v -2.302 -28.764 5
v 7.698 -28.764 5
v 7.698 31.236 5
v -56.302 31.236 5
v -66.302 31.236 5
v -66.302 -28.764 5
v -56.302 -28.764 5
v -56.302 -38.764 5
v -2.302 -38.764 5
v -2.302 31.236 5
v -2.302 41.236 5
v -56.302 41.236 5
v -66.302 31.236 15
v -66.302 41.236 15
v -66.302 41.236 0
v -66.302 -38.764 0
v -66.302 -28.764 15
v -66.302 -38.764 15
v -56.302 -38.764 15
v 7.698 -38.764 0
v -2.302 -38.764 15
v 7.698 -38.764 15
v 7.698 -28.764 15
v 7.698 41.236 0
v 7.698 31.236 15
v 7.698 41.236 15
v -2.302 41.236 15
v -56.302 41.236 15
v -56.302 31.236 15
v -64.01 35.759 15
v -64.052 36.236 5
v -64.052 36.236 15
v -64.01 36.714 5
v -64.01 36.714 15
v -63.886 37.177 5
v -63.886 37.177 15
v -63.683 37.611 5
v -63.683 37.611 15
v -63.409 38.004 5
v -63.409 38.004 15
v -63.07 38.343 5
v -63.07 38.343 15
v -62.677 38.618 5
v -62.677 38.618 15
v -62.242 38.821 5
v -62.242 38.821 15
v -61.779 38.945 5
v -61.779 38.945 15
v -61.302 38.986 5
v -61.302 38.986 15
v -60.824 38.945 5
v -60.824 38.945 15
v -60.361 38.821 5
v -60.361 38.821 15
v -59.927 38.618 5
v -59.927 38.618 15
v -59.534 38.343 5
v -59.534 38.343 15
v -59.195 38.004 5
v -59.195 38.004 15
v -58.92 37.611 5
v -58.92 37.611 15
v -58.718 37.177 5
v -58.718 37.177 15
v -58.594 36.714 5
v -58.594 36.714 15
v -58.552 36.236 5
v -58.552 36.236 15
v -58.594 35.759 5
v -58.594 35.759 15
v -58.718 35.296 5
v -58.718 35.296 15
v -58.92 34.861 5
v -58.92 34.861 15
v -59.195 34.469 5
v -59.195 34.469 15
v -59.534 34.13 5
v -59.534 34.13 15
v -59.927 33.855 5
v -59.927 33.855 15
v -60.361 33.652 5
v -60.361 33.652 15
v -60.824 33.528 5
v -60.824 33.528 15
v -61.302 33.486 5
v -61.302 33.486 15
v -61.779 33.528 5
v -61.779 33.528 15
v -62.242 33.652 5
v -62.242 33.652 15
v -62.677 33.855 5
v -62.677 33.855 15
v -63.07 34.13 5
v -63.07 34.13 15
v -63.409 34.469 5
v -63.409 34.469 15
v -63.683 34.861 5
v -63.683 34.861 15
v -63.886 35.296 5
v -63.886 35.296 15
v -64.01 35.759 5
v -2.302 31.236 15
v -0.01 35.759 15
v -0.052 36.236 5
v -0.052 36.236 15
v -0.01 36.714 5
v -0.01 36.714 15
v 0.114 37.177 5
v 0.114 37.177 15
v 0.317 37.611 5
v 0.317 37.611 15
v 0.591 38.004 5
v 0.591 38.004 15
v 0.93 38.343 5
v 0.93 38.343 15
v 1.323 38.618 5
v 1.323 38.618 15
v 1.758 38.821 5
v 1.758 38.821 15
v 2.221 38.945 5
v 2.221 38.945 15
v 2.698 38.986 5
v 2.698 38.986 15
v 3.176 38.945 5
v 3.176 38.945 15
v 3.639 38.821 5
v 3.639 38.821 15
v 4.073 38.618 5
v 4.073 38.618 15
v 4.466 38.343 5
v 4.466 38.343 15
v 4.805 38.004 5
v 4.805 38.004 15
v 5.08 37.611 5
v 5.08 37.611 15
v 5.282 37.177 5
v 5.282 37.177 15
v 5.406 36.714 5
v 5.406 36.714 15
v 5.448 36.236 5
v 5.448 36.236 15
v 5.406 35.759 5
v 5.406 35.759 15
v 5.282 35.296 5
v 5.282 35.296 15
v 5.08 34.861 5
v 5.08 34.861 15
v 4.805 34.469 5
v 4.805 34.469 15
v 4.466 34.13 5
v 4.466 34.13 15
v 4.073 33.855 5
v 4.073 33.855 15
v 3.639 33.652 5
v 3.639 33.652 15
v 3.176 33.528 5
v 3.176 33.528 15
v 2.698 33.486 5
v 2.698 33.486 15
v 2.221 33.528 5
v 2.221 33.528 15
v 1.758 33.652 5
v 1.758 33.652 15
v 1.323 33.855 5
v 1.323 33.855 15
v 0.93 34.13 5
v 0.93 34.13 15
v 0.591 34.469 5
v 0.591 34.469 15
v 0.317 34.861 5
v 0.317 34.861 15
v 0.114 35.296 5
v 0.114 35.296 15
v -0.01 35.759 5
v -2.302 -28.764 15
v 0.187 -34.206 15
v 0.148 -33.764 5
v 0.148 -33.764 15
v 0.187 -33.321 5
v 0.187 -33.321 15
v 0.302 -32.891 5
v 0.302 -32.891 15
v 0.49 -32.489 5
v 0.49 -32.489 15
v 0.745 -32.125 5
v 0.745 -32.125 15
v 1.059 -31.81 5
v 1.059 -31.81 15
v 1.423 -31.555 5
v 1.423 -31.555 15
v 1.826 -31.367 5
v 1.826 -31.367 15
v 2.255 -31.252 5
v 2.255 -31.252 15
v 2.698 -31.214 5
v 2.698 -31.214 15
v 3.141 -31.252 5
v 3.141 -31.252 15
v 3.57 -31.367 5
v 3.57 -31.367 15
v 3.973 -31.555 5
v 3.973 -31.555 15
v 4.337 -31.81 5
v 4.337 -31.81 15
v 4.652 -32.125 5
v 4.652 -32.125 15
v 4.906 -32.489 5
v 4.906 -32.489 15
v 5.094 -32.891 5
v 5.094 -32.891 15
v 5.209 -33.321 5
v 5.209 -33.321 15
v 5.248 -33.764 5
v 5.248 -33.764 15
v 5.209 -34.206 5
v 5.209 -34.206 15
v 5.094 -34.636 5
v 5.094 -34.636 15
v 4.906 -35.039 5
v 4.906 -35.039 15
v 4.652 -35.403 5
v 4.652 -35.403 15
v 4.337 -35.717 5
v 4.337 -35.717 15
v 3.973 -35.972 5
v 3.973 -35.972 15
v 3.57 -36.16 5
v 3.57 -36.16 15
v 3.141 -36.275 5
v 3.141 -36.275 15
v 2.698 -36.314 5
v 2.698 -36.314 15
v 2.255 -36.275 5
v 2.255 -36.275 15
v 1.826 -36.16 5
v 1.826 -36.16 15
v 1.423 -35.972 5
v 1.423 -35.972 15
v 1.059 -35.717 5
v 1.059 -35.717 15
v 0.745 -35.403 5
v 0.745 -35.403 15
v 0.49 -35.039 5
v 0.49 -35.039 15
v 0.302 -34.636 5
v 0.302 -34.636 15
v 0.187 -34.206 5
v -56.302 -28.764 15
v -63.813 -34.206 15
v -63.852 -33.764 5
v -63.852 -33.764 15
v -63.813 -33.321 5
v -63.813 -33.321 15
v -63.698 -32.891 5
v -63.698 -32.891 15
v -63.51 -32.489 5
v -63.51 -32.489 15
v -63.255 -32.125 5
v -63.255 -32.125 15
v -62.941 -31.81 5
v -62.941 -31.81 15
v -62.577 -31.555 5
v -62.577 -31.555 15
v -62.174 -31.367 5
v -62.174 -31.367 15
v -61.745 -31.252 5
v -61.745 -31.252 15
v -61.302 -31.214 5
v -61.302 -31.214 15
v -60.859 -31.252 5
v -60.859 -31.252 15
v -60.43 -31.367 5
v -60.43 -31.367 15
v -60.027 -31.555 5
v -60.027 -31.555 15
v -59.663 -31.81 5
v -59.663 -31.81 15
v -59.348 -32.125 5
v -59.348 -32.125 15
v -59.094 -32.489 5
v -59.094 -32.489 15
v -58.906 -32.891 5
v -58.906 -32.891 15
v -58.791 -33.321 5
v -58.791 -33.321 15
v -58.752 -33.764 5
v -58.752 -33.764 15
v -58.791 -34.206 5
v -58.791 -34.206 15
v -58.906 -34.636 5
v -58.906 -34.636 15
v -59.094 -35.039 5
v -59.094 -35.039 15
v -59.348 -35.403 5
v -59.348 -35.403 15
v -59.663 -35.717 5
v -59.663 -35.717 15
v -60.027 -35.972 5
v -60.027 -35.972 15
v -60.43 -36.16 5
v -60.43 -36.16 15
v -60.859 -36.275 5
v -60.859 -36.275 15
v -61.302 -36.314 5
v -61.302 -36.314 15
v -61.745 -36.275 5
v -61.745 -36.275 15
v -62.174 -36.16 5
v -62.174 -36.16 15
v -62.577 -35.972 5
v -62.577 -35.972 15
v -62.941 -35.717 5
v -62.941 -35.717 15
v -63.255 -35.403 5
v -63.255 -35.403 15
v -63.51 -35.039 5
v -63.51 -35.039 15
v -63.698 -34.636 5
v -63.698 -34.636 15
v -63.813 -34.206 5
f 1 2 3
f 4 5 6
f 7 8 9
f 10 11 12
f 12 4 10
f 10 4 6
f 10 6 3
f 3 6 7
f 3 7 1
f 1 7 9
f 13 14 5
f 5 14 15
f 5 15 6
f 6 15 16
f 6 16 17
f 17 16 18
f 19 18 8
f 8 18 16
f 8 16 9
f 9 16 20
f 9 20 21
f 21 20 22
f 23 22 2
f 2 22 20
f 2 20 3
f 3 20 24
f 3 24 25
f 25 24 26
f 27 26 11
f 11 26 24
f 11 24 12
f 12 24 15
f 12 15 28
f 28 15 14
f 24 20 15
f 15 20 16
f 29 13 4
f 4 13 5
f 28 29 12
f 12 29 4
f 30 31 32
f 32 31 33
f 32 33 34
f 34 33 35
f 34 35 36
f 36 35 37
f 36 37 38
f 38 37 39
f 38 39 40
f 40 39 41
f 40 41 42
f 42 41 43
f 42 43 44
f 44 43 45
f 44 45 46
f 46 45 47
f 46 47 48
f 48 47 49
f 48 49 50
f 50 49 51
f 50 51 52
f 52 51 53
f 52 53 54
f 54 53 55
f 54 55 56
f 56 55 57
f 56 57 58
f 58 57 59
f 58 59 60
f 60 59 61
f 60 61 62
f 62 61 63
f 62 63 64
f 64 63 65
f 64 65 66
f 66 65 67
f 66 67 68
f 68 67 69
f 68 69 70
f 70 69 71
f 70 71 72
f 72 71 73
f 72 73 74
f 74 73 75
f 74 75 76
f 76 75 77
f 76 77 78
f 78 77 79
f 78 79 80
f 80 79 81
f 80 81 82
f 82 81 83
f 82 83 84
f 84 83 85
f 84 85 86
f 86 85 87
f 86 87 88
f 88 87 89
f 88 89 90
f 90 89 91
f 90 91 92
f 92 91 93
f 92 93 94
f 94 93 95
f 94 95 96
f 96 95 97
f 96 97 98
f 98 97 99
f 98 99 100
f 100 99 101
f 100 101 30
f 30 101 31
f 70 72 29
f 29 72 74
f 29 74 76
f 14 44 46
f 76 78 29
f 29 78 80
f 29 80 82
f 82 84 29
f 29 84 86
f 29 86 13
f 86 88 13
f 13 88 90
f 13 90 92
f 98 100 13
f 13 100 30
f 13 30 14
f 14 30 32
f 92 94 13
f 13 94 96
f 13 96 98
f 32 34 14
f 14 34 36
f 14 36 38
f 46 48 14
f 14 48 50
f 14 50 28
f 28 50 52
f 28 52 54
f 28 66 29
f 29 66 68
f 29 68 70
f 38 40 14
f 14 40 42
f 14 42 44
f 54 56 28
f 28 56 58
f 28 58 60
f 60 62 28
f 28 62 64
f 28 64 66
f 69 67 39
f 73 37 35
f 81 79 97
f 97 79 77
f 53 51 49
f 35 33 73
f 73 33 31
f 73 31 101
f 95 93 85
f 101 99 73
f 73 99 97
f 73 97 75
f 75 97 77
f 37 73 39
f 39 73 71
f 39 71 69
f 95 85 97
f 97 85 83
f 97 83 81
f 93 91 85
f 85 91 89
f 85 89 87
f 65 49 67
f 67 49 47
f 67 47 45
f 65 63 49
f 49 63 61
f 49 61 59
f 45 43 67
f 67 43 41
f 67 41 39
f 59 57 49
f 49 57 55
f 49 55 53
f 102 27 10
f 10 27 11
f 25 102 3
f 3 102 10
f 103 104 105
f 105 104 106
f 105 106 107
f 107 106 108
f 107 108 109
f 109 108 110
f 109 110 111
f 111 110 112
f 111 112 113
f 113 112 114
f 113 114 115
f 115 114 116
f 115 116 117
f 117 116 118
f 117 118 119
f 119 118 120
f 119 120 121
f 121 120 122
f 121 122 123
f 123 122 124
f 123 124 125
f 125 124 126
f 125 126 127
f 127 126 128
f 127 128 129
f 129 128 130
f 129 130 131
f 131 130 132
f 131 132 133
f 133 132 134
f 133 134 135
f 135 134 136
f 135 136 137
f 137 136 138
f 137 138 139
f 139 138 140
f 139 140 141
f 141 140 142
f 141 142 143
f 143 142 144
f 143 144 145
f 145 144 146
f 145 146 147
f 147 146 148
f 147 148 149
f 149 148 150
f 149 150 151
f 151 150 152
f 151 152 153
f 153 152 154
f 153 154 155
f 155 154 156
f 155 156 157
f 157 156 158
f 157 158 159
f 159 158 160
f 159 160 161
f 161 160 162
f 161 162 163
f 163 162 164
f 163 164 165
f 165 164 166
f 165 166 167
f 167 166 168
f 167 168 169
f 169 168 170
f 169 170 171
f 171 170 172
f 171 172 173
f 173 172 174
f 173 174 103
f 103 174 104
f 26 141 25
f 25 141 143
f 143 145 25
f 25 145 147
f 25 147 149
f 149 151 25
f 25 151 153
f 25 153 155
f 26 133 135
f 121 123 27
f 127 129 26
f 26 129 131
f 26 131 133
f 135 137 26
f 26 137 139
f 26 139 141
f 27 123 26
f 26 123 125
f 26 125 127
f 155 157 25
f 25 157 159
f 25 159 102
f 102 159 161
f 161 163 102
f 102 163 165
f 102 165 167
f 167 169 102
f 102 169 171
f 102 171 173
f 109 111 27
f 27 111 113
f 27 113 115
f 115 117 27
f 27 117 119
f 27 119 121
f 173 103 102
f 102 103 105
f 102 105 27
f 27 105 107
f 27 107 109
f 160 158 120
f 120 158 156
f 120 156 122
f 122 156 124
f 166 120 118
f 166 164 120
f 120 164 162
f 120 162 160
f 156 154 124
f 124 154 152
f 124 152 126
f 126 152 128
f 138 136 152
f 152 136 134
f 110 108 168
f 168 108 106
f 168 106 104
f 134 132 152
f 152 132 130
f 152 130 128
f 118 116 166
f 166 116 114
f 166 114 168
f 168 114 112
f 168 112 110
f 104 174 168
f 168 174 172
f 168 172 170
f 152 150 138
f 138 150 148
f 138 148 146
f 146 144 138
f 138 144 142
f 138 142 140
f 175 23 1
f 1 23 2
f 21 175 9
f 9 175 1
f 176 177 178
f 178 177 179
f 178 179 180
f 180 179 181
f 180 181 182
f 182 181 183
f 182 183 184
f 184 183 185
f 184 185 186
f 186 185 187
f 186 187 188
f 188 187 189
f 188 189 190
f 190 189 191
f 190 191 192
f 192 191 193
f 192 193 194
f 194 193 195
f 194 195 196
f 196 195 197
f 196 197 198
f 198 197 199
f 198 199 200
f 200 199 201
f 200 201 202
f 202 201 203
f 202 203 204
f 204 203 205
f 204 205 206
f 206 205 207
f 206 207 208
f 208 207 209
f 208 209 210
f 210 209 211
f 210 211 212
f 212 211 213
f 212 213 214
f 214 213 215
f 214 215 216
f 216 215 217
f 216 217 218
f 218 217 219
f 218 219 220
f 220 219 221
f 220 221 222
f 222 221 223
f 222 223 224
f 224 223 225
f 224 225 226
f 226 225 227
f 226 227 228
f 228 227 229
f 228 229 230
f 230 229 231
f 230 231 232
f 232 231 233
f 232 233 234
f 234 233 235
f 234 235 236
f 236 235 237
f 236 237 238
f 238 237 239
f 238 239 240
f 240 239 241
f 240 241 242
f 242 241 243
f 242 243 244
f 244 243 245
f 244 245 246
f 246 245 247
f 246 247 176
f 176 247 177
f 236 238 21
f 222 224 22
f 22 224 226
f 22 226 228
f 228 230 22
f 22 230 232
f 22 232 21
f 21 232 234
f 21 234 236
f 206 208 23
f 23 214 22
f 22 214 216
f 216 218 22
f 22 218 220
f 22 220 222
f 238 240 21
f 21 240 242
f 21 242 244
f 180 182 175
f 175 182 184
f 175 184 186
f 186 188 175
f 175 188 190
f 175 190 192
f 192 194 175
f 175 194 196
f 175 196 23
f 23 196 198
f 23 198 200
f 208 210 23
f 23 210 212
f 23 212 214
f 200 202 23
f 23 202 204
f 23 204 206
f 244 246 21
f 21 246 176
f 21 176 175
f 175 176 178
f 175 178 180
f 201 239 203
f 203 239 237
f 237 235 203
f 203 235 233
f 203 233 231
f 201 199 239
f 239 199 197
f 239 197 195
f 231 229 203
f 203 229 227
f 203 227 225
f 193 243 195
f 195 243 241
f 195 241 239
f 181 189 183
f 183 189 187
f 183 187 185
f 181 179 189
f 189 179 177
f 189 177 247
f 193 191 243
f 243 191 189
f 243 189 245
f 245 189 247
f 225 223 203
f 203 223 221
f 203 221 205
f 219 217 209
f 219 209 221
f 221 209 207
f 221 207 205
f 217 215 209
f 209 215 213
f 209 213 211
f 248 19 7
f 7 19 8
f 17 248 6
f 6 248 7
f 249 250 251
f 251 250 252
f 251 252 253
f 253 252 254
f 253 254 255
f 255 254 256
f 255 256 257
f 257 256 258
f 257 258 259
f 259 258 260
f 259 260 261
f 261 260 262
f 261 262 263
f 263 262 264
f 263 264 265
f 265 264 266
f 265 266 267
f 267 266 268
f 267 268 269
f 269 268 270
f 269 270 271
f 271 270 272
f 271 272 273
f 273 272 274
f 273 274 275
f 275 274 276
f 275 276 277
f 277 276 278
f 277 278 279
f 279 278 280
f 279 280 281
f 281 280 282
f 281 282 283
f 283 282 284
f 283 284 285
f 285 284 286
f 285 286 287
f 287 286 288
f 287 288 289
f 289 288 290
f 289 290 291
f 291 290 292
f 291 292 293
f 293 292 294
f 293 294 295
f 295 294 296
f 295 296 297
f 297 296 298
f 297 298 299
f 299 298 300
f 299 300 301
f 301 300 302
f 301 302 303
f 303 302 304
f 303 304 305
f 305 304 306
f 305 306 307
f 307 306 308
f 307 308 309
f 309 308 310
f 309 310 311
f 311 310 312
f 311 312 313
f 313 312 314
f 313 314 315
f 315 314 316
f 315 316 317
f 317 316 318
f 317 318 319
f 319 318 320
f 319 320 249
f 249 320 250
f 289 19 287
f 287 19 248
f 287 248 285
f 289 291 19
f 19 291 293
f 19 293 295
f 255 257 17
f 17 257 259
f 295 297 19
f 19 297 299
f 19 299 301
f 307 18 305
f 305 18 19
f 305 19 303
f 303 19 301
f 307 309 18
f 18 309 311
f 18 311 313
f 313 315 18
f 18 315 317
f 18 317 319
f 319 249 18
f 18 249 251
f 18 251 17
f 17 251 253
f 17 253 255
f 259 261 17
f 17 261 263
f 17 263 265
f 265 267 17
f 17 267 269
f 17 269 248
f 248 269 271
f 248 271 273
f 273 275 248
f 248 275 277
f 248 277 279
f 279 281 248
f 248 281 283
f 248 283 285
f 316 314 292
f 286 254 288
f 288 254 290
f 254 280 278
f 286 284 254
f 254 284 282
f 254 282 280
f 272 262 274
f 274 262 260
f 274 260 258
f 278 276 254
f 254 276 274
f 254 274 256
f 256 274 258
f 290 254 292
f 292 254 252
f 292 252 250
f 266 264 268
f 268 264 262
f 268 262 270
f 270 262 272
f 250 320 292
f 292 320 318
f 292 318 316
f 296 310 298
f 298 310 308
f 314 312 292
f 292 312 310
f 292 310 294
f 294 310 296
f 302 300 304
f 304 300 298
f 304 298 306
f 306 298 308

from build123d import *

# Parameters (mm, degrees)
CROQUIS1_W              = 74
CROQUIS1_H              = 80
SALIENTE_EXTRUIR1_DEPTH = 5
CROQUIS2_W              = 10
CROQUIS2_H              = 10
CROQUIS2_R              = 2.75
CROQUIS2_R_2            = 2.55
SALIENTE_EXTRUIR2_DEPTH = 10


with BuildPart() as part:
    # Croquis1 → Saliente-Extruir1 (new body)
    with BuildSketch(Plane.XY):
        with Locations((-29.301889279, 1.236374696)):
            Rectangle(CROQUIS1_W, CROQUIS1_H)
    extrude(amount=SALIENTE_EXTRUIR1_DEPTH)

    # Croquis2 → Saliente-Extruir2 (add)
    with BuildSketch(Plane.XY.offset(5)):
        with Locations((-61.301889279, 36.236374696)):
            Rectangle(CROQUIS2_W, CROQUIS2_H)
        with Locations((-61.301889279, 36.236374696)):
            Circle(CROQUIS2_R, mode=Mode.SUBTRACT)
        with Locations((2.698110721, 36.236374696)):
            Rectangle(CROQUIS2_W, CROQUIS2_H)
        with Locations((2.698110721, 36.236374696)):
            Circle(CROQUIS2_R, mode=Mode.SUBTRACT)
        with Locations((2.698110721, -33.763625304)):
            Rectangle(CROQUIS2_W, CROQUIS2_H)
        with Locations((2.698110721, -33.763625304)):
            Circle(CROQUIS2_R_2, mode=Mode.SUBTRACT)
        with Locations((-61.301889279, -33.763625304)):
            Rectangle(CROQUIS2_W, CROQUIS2_H)
        with Locations((-61.301889279, -33.763625304)):
            Circle(CROQUIS2_R_2, mode=Mode.SUBTRACT)
    extrude(amount=SALIENTE_EXTRUIR2_DEPTH)


solid = part.part
